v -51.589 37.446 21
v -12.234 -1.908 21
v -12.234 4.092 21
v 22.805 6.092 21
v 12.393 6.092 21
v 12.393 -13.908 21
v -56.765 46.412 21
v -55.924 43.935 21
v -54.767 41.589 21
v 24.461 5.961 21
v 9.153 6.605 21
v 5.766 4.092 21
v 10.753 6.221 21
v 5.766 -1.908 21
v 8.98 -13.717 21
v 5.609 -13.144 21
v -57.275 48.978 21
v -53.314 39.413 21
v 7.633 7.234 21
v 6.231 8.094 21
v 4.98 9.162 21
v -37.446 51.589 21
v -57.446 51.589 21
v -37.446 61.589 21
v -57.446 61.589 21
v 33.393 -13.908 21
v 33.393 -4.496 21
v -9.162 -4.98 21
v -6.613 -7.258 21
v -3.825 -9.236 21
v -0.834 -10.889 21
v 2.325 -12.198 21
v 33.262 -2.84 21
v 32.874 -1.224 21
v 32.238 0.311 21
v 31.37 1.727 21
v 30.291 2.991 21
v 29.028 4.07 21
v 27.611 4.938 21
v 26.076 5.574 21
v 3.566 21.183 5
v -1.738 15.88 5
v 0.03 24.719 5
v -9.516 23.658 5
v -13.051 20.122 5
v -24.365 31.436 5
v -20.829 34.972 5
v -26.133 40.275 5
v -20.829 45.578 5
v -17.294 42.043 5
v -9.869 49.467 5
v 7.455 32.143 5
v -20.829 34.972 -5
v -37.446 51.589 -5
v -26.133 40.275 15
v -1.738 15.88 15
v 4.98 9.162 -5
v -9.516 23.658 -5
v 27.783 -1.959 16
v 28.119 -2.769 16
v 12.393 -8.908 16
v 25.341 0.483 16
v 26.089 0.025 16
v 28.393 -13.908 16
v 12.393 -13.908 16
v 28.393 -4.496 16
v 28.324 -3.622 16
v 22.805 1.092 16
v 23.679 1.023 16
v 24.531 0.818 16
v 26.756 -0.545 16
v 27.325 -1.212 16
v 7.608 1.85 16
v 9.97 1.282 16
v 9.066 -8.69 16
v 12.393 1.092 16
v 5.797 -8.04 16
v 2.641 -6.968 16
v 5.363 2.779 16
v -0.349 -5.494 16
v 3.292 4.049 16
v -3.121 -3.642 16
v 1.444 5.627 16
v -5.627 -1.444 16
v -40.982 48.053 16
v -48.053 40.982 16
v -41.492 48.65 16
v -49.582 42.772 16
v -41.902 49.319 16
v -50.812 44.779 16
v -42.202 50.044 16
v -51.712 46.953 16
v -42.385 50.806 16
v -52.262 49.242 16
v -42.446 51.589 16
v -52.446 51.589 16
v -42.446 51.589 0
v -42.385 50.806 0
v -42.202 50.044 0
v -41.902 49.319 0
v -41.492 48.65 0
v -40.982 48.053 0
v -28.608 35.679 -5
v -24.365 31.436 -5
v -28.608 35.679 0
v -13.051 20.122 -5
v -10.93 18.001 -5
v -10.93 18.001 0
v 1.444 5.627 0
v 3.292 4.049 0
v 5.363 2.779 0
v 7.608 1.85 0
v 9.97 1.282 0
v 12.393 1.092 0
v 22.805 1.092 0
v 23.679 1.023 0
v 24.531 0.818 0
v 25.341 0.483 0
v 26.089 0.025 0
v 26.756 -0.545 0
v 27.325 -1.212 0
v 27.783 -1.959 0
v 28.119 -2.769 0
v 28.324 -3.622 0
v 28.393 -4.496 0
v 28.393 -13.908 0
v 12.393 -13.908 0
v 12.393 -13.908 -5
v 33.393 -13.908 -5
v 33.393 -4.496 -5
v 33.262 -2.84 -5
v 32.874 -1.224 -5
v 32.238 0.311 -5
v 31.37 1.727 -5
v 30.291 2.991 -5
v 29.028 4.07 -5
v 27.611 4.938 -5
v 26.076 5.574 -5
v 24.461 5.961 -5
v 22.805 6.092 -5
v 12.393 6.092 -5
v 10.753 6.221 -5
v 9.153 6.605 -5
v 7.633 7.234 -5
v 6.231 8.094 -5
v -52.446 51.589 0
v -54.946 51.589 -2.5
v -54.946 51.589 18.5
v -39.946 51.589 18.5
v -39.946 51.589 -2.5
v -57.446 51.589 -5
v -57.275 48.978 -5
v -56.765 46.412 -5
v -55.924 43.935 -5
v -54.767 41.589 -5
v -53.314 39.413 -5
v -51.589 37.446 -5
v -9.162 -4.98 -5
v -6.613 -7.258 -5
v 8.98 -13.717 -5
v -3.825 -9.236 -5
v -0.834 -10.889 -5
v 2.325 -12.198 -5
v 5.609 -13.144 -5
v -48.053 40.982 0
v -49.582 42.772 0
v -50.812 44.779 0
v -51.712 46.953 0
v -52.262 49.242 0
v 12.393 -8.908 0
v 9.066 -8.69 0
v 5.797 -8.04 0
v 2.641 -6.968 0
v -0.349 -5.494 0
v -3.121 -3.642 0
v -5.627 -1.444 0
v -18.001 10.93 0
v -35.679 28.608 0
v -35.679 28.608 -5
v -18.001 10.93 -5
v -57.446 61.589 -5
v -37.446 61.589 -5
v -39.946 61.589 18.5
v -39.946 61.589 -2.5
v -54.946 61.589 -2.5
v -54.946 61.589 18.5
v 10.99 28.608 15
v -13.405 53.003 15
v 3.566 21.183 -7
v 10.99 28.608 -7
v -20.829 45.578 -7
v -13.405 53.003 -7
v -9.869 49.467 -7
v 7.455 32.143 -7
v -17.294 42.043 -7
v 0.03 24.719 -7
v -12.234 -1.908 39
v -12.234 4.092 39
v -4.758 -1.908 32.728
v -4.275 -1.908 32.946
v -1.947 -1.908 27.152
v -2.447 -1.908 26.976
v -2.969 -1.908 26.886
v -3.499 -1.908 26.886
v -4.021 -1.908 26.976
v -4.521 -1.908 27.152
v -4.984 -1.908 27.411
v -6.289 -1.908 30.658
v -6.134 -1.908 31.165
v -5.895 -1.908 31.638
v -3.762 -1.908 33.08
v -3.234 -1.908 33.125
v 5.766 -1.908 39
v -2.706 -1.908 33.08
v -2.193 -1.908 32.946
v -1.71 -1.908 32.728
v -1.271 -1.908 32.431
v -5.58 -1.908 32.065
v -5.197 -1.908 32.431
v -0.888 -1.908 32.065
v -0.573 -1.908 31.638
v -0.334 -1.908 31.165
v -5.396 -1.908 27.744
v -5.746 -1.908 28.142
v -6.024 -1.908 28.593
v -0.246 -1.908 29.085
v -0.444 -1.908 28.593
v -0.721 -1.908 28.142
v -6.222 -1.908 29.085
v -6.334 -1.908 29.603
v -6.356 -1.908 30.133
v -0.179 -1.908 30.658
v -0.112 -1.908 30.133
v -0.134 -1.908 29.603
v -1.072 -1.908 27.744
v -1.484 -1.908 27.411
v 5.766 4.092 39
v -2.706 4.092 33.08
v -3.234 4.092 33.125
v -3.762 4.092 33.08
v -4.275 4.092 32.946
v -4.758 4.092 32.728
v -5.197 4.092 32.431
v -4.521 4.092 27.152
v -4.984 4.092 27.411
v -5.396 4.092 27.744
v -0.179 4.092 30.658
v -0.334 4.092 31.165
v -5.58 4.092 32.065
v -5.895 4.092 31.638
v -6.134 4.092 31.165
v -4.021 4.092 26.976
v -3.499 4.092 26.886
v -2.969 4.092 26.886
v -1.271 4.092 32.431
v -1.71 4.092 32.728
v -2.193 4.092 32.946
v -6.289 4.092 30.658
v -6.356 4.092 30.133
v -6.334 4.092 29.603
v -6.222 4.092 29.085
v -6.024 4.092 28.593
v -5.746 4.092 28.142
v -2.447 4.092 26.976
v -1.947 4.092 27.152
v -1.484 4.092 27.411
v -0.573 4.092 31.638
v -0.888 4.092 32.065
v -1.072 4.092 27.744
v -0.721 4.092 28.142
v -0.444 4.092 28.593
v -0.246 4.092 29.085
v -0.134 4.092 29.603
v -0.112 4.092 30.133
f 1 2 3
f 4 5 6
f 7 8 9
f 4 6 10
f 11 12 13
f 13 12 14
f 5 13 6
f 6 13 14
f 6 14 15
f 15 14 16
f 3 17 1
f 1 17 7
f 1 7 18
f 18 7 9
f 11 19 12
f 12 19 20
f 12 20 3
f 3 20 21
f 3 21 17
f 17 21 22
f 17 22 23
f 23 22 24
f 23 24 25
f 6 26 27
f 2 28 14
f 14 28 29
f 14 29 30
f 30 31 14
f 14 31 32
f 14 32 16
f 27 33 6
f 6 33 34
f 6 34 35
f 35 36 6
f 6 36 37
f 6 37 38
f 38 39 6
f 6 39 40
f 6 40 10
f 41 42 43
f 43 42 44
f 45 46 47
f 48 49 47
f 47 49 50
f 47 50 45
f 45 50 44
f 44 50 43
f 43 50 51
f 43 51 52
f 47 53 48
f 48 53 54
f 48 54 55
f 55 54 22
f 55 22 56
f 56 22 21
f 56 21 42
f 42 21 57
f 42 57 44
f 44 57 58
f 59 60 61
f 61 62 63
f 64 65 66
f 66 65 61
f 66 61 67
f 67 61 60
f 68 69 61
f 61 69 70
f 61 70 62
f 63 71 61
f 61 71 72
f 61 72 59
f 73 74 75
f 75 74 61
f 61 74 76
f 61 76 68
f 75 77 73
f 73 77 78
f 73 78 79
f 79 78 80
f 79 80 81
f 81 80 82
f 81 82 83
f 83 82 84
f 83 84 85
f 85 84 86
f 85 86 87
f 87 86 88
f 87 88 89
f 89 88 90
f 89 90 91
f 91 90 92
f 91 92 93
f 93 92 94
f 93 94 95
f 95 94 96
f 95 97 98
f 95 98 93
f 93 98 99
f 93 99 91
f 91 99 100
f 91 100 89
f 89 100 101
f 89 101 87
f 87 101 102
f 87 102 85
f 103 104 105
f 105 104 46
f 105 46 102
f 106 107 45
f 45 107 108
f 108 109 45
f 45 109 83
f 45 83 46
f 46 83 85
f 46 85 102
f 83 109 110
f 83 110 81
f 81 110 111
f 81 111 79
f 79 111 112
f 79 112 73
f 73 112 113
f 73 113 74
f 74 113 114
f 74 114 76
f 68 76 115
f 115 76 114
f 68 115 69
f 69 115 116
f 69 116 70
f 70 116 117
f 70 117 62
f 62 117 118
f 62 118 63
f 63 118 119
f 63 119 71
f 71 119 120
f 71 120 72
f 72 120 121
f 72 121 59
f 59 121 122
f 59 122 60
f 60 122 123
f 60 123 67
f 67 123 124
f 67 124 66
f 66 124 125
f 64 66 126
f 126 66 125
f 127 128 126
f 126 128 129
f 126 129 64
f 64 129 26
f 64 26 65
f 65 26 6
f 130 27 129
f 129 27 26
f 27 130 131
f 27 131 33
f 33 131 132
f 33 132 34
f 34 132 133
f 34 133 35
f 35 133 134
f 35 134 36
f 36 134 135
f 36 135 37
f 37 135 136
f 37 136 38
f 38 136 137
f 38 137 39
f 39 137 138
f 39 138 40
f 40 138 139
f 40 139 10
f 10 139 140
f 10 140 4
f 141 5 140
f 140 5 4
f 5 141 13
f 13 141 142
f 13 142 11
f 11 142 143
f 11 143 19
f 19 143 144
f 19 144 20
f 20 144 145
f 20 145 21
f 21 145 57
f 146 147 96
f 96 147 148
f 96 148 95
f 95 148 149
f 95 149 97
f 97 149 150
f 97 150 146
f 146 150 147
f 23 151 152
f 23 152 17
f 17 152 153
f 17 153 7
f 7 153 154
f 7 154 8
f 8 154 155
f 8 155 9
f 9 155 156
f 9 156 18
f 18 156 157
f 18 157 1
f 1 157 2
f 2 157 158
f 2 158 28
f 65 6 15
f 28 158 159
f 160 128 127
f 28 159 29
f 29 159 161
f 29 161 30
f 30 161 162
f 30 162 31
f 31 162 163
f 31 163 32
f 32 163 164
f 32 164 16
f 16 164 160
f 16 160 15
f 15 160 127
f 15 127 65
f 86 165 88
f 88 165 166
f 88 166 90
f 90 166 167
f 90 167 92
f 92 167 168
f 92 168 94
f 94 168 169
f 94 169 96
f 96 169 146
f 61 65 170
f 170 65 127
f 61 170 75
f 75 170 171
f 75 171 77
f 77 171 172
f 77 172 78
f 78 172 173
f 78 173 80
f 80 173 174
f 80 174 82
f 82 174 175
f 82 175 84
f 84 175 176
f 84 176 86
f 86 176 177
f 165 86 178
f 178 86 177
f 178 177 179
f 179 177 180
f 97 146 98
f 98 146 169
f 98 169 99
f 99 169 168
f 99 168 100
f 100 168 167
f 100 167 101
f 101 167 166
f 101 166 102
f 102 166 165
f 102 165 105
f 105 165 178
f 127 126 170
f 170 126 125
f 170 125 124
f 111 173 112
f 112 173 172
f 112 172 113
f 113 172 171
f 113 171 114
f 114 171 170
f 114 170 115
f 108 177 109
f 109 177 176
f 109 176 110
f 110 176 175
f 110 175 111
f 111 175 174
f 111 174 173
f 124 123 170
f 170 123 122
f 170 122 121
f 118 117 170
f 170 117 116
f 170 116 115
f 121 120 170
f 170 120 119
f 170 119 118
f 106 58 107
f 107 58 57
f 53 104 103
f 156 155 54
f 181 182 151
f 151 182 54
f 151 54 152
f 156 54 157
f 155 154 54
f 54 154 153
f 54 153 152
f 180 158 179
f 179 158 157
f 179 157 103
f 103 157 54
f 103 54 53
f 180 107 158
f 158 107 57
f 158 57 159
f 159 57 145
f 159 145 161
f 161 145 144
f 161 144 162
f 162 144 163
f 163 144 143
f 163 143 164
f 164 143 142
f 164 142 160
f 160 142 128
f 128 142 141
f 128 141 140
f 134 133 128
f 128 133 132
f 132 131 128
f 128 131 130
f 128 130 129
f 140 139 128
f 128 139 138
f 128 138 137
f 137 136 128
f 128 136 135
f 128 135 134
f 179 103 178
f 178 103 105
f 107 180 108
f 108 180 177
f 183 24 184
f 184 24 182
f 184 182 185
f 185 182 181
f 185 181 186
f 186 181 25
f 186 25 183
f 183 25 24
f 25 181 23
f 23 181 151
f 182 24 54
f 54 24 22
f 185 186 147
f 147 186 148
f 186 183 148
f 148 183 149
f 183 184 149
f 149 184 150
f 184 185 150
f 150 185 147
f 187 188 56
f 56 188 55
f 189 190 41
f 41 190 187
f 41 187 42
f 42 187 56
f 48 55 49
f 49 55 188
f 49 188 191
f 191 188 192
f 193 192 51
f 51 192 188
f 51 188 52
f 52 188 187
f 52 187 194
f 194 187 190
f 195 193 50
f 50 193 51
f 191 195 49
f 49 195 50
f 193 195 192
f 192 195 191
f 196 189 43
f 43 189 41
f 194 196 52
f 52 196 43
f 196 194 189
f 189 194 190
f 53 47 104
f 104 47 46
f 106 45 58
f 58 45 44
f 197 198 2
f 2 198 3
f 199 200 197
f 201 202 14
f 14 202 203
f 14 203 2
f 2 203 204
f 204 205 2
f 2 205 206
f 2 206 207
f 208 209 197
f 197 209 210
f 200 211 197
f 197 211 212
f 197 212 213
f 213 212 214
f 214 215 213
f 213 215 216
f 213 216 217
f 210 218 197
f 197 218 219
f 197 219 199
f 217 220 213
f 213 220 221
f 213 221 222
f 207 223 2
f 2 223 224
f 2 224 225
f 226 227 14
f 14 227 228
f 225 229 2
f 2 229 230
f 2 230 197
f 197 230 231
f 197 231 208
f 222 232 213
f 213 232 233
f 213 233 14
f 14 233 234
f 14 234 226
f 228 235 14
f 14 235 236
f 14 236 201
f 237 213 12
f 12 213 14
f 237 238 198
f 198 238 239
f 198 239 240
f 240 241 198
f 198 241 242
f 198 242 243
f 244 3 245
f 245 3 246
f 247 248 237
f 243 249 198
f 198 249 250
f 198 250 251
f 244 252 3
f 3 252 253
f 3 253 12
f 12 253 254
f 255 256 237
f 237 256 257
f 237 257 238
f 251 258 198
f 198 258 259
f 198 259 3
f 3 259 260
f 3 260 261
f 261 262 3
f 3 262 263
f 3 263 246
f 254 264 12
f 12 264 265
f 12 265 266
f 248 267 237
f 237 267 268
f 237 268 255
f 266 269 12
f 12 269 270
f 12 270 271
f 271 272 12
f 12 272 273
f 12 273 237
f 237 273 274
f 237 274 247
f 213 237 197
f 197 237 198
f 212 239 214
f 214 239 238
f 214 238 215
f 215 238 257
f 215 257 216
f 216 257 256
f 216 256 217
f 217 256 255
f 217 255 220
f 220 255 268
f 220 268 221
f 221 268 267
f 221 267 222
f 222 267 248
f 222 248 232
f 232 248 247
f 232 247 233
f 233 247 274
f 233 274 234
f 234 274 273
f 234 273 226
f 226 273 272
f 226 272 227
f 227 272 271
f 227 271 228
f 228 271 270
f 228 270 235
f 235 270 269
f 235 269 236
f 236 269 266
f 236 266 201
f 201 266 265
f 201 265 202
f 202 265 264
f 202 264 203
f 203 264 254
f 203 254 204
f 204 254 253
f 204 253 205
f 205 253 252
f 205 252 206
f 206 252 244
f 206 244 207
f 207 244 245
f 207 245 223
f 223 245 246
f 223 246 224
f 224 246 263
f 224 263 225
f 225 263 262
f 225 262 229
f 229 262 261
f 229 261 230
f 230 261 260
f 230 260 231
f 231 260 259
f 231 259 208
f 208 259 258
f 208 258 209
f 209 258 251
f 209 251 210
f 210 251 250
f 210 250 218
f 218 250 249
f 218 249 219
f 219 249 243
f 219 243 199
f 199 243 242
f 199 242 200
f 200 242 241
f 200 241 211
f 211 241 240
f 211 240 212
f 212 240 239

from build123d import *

# Parameters (mm, degrees)
BOSS_EXTRUDE1_DEPTH   = 16
BOSS_EXTRUDE1_2_DEPTH = 16
BOSS_EXTRUDE4_DEPTH   = 5
BOSS_EXTRUDE5_START   = 5
BOSS_EXTRUDE5_DEPTH   = 5
SKETCH7_W             = 20
SKETCH7_H             = 26
SKETCH7_W_2           = 15
SKETCH7_H_2           = 21
BOSS_EXTRUDE6_DEPTH   = 10
SKETCH9_W             = 10
SKETCH9_H             = 34.5
BOSS_EXTRUDE7_DEPTH   = 18
BOSS_EXTRUDE8_DEPTH   = 12
CUT_EXTRUDE3_DEPTH    = 10
SKETCH12_W            = 18
SKETCH12_H            = 6
BOSS_EXTRUDE9_DEPTH   = 18
SKETCH13_R            = 3.125
CUT_EXTRUDE4_DEPTH    = 18


with BuildPart() as part:
    # Sketch1 → Boss-Extrude1 (new body)
    with BuildSketch(Plane.XY):
        with BuildLine():
            Line((-40.982019254, 48.053087066), (1.444387617, 5.626680195))
            ThreePointArc((1.444387617, 5.626680195), (6.46743153, 2.270389555), (12.392515814, 1.091817013))
            Line((12.392515814, 1.091817013), (22.804554858, 1.091817013))
            ThreePointArc((22.804554858, 1.091817013), (26.755839943, -0.544858858), (28.392515814, -4.496143942))
            Line((28.392515814, -4.496143942), (28.392515814, -13.908182987))
            Line((28.392515814, -13.908182987), (33.392515814, -13.908182987))
            Line((33.392515814, -13.908182987), (33.392515814, -4.496143942))
            ThreePointArc((33.392515814, -4.496143942), (30.291373849, 2.990675048), (22.804554858, 6.091817013))
            Line((22.804554858, 6.091817013), (12.392515814, 6.091817013))
            ThreePointArc((12.392515814, 6.091817013), (8.380848692, 6.889787217), (4.979921523, 9.162214101))
            Line((4.979921523, 9.162214101), (-37.446485348, 51.588620972))
            Line((-37.446485348, 51.588620972), (-42.446485348, 51.588620972))
            ThreePointArc((-42.446485348, 51.588620972), (-42.065883011, 49.67520381), (-40.982019254, 48.053087066))
        make_face()
    extrude(amount=BOSS_EXTRUDE1_DEPTH)



with BuildPart() as body_2:
    # Sketch1 → Boss-Extrude1 2 (new body)
    with BuildSketch(Plane.XY):
        with BuildLine():
            Line((-48.053087066, 40.982019254), (-5.626680195, -1.444387617))
            ThreePointArc((-5.626680195, -1.444387617), (2.640597206, -6.96840577), (12.392515814, -8.908182987))
            Line((12.392515814, -8.908182987), (12.392515814, -13.908182987))
            ThreePointArc((12.392515814, -13.908182987), (0.727180044, -11.587803433), (-9.162214101, -4.979921523))
            Line((-9.162214101, -4.979921523), (-51.588620972, 37.446485348))
            ThreePointArc((-51.588620972, 37.446485348), (-55.924075998, 43.934952324), (-57.446485348, 51.588620972))
            Line((-57.446485348, 51.588620972), (-52.446485348, 51.588620972))
            ThreePointArc((-52.446485348, 51.588620972), (-51.304678336, 45.848369486), (-48.053087066, 40.982019254))
        make_face()
    extrude(amount=BOSS_EXTRUDE1_2_DEPTH)


with BuildPart() as part_1:
    add(part.part)

    add(body_2.part)  # Boss-Extrude4 merges body 2
    # Sketch5 → Boss-Extrude4 (add)
    with BuildSketch(Plane.XY.offset(16)):
        with BuildLine():
            Line((-57.446485348, 51.588620972), (-37.446485348, 51.588620972))
            Line((-37.446485348, 51.588620972), (4.979921523, 9.162214101))
            ThreePointArc((4.979921523, 9.162214101), (8.380848692, 6.889787217), (12.392515814, 6.091817013))
            Line((12.392515814, 6.091817013), (22.804554858, 6.091817013))
            ThreePointArc((22.804554858, 6.091817013), (30.291373849, 2.990675048), (33.392515814, -4.496143942))
            Line((33.392515814, -4.496143942), (33.392515814, -13.908182987))
            Line((33.392515814, -13.908182987), (12.392515814, -13.908182987))
            ThreePointArc((12.392515814, -13.908182987), (0.727180044, -11.587803433), (-9.162214101, -4.979921523))
            Line((-9.162214101, -4.979921523), (-51.588620972, 37.446485348))
            ThreePointArc((-51.588620972, 37.446485348), (-55.924075998, 43.934952324), (-57.446485348, 51.588620972))
        make_face()
    extrude(amount=BOSS_EXTRUDE4_DEPTH)

    # Sketch6 → Boss-Extrude5 (add)
    with BuildSketch(Plane(origin=(0, 0, 0), x_dir=(-1, 0, 0), z_dir=(0, 0, -1)).offset(BOSS_EXTRUDE5_START)):
        with BuildLine():
            Line((-4.979921523, 9.162214101), (37.446485348, 51.588620972))
            Line((37.446485348, 51.588620972), (57.446485348, 51.588620972))
            ThreePointArc((57.446485348, 51.588620972), (55.924075998, 43.934952324), (51.588620972, 37.446485348))
            Line((51.588620972, 37.446485348), (9.162214101, -4.979921523))
            ThreePointArc((9.162214101, -4.979921523), (-0.727180044, -11.587803433), (-12.392515814, -13.908182987))
            Line((-12.392515814, -13.908182987), (-33.392515814, -13.908182987))
            Line((-33.392515814, -13.908182987), (-33.392515814, -4.496143942))
            ThreePointArc((-33.392515814, -4.496143942), (-30.291373849, 2.990675048), (-22.804554858, 6.091817013))
            Line((-22.804554858, 6.091817013), (-12.392515814, 6.091817013))
            ThreePointArc((-12.392515814, 6.091817013), (-8.380848692, 6.889787217), (-4.979921523, 9.162214101))
        make_face()
        Polygon((28.607650583, 35.678718395), (10.929981054, 18.001048865), (18.001048865, 10.929981054), (35.678718395, 28.607650583), align=None, mode=Mode.SUBTRACT)
    extrude(amount=-BOSS_EXTRUDE5_DEPTH)

    # Sketch7 → Boss-Extrude6 (add)
    with BuildSketch(Plane(origin=(0, 51.588620972, 0), x_dir=(1, 0, 0), z_dir=(0, 1, 0))):
        with Locations((-47.446485348, -8)):
            Rectangle(SKETCH7_W, SKETCH7_H)
        with Locations((-47.446485348, -8)):
            Rectangle(SKETCH7_W_2, SKETCH7_H_2, mode=Mode.SUBTRACT)
    extrude(amount=BOSS_EXTRUDE6_DEPTH)

    # Sketch9 → Boss-Extrude7 (add)
    with BuildSketch(Plane(origin=(7.071067812, 7.071067812, 0), x_dir=(0, 0, -1), z_dir=(0.7071067811865486, 0.7071067811865465, 0))):
        with Locations((-10, 29.707327442)):
            Rectangle(SKETCH9_W, SKETCH9_H)
    extrude(amount=BOSS_EXTRUDE7_DEPTH)

    # Sketch10 → Boss-Extrude8 (add)
    with BuildSketch(Plane(origin=(0, 0, 5), x_dir=(-1, 0, 0), z_dir=(0, 0, -1))):
        Polygon((20.82947599, 45.578213332), (17.293942084, 42.042679426), (9.869320882, 49.467300628), (13.404854788, 53.002834534), align=None)
        Polygon((-10.990329163, 28.607650583), (-7.454795257, 32.143184489), (-0.030174055, 24.718563287), (-3.565707961, 21.183029381), align=None)
    extrude(amount=BOSS_EXTRUDE8_DEPTH)

    # Sketch11 → Cut-Extrude3 (cut)
    with BuildSketch(Plane(origin=(0, 0, -5), x_dir=(-1, 0, 0), z_dir=(0, 0, -1))):
        Polygon((24.365009896, 31.436077708), (20.82947599, 34.971611614), (16.233281912, 30.375417536), (9.515767491, 23.657903115), (13.051301397, 20.122369209), (19.768815818, 26.83988363), align=None)
    extrude(amount=-CUT_EXTRUDE3_DEPTH, mode=Mode.SUBTRACT)

    # Sketch12 → Boss-Extrude9 (add)
    with BuildSketch(Plane.XY.offset(21)):
        with Locations((-3.233952637, 1.091817013)):
            Rectangle(SKETCH12_W, SKETCH12_H)
    extrude(amount=BOSS_EXTRUDE9_DEPTH)

    # Sketch13 → Cut-Extrude4 (cut)
    with BuildSketch(Plane(origin=(0, 4.091817013, 0), x_dir=(1, 0, 0), z_dir=(0, 1, 0))):
        with Locations(Location((-3.233952637, -30, 0), (0, 0, 270))):
            Circle(SKETCH13_R)
    extrude(amount=-CUT_EXTRUDE4_DEPTH, mode=Mode.SUBTRACT)


solid = part_1.part
